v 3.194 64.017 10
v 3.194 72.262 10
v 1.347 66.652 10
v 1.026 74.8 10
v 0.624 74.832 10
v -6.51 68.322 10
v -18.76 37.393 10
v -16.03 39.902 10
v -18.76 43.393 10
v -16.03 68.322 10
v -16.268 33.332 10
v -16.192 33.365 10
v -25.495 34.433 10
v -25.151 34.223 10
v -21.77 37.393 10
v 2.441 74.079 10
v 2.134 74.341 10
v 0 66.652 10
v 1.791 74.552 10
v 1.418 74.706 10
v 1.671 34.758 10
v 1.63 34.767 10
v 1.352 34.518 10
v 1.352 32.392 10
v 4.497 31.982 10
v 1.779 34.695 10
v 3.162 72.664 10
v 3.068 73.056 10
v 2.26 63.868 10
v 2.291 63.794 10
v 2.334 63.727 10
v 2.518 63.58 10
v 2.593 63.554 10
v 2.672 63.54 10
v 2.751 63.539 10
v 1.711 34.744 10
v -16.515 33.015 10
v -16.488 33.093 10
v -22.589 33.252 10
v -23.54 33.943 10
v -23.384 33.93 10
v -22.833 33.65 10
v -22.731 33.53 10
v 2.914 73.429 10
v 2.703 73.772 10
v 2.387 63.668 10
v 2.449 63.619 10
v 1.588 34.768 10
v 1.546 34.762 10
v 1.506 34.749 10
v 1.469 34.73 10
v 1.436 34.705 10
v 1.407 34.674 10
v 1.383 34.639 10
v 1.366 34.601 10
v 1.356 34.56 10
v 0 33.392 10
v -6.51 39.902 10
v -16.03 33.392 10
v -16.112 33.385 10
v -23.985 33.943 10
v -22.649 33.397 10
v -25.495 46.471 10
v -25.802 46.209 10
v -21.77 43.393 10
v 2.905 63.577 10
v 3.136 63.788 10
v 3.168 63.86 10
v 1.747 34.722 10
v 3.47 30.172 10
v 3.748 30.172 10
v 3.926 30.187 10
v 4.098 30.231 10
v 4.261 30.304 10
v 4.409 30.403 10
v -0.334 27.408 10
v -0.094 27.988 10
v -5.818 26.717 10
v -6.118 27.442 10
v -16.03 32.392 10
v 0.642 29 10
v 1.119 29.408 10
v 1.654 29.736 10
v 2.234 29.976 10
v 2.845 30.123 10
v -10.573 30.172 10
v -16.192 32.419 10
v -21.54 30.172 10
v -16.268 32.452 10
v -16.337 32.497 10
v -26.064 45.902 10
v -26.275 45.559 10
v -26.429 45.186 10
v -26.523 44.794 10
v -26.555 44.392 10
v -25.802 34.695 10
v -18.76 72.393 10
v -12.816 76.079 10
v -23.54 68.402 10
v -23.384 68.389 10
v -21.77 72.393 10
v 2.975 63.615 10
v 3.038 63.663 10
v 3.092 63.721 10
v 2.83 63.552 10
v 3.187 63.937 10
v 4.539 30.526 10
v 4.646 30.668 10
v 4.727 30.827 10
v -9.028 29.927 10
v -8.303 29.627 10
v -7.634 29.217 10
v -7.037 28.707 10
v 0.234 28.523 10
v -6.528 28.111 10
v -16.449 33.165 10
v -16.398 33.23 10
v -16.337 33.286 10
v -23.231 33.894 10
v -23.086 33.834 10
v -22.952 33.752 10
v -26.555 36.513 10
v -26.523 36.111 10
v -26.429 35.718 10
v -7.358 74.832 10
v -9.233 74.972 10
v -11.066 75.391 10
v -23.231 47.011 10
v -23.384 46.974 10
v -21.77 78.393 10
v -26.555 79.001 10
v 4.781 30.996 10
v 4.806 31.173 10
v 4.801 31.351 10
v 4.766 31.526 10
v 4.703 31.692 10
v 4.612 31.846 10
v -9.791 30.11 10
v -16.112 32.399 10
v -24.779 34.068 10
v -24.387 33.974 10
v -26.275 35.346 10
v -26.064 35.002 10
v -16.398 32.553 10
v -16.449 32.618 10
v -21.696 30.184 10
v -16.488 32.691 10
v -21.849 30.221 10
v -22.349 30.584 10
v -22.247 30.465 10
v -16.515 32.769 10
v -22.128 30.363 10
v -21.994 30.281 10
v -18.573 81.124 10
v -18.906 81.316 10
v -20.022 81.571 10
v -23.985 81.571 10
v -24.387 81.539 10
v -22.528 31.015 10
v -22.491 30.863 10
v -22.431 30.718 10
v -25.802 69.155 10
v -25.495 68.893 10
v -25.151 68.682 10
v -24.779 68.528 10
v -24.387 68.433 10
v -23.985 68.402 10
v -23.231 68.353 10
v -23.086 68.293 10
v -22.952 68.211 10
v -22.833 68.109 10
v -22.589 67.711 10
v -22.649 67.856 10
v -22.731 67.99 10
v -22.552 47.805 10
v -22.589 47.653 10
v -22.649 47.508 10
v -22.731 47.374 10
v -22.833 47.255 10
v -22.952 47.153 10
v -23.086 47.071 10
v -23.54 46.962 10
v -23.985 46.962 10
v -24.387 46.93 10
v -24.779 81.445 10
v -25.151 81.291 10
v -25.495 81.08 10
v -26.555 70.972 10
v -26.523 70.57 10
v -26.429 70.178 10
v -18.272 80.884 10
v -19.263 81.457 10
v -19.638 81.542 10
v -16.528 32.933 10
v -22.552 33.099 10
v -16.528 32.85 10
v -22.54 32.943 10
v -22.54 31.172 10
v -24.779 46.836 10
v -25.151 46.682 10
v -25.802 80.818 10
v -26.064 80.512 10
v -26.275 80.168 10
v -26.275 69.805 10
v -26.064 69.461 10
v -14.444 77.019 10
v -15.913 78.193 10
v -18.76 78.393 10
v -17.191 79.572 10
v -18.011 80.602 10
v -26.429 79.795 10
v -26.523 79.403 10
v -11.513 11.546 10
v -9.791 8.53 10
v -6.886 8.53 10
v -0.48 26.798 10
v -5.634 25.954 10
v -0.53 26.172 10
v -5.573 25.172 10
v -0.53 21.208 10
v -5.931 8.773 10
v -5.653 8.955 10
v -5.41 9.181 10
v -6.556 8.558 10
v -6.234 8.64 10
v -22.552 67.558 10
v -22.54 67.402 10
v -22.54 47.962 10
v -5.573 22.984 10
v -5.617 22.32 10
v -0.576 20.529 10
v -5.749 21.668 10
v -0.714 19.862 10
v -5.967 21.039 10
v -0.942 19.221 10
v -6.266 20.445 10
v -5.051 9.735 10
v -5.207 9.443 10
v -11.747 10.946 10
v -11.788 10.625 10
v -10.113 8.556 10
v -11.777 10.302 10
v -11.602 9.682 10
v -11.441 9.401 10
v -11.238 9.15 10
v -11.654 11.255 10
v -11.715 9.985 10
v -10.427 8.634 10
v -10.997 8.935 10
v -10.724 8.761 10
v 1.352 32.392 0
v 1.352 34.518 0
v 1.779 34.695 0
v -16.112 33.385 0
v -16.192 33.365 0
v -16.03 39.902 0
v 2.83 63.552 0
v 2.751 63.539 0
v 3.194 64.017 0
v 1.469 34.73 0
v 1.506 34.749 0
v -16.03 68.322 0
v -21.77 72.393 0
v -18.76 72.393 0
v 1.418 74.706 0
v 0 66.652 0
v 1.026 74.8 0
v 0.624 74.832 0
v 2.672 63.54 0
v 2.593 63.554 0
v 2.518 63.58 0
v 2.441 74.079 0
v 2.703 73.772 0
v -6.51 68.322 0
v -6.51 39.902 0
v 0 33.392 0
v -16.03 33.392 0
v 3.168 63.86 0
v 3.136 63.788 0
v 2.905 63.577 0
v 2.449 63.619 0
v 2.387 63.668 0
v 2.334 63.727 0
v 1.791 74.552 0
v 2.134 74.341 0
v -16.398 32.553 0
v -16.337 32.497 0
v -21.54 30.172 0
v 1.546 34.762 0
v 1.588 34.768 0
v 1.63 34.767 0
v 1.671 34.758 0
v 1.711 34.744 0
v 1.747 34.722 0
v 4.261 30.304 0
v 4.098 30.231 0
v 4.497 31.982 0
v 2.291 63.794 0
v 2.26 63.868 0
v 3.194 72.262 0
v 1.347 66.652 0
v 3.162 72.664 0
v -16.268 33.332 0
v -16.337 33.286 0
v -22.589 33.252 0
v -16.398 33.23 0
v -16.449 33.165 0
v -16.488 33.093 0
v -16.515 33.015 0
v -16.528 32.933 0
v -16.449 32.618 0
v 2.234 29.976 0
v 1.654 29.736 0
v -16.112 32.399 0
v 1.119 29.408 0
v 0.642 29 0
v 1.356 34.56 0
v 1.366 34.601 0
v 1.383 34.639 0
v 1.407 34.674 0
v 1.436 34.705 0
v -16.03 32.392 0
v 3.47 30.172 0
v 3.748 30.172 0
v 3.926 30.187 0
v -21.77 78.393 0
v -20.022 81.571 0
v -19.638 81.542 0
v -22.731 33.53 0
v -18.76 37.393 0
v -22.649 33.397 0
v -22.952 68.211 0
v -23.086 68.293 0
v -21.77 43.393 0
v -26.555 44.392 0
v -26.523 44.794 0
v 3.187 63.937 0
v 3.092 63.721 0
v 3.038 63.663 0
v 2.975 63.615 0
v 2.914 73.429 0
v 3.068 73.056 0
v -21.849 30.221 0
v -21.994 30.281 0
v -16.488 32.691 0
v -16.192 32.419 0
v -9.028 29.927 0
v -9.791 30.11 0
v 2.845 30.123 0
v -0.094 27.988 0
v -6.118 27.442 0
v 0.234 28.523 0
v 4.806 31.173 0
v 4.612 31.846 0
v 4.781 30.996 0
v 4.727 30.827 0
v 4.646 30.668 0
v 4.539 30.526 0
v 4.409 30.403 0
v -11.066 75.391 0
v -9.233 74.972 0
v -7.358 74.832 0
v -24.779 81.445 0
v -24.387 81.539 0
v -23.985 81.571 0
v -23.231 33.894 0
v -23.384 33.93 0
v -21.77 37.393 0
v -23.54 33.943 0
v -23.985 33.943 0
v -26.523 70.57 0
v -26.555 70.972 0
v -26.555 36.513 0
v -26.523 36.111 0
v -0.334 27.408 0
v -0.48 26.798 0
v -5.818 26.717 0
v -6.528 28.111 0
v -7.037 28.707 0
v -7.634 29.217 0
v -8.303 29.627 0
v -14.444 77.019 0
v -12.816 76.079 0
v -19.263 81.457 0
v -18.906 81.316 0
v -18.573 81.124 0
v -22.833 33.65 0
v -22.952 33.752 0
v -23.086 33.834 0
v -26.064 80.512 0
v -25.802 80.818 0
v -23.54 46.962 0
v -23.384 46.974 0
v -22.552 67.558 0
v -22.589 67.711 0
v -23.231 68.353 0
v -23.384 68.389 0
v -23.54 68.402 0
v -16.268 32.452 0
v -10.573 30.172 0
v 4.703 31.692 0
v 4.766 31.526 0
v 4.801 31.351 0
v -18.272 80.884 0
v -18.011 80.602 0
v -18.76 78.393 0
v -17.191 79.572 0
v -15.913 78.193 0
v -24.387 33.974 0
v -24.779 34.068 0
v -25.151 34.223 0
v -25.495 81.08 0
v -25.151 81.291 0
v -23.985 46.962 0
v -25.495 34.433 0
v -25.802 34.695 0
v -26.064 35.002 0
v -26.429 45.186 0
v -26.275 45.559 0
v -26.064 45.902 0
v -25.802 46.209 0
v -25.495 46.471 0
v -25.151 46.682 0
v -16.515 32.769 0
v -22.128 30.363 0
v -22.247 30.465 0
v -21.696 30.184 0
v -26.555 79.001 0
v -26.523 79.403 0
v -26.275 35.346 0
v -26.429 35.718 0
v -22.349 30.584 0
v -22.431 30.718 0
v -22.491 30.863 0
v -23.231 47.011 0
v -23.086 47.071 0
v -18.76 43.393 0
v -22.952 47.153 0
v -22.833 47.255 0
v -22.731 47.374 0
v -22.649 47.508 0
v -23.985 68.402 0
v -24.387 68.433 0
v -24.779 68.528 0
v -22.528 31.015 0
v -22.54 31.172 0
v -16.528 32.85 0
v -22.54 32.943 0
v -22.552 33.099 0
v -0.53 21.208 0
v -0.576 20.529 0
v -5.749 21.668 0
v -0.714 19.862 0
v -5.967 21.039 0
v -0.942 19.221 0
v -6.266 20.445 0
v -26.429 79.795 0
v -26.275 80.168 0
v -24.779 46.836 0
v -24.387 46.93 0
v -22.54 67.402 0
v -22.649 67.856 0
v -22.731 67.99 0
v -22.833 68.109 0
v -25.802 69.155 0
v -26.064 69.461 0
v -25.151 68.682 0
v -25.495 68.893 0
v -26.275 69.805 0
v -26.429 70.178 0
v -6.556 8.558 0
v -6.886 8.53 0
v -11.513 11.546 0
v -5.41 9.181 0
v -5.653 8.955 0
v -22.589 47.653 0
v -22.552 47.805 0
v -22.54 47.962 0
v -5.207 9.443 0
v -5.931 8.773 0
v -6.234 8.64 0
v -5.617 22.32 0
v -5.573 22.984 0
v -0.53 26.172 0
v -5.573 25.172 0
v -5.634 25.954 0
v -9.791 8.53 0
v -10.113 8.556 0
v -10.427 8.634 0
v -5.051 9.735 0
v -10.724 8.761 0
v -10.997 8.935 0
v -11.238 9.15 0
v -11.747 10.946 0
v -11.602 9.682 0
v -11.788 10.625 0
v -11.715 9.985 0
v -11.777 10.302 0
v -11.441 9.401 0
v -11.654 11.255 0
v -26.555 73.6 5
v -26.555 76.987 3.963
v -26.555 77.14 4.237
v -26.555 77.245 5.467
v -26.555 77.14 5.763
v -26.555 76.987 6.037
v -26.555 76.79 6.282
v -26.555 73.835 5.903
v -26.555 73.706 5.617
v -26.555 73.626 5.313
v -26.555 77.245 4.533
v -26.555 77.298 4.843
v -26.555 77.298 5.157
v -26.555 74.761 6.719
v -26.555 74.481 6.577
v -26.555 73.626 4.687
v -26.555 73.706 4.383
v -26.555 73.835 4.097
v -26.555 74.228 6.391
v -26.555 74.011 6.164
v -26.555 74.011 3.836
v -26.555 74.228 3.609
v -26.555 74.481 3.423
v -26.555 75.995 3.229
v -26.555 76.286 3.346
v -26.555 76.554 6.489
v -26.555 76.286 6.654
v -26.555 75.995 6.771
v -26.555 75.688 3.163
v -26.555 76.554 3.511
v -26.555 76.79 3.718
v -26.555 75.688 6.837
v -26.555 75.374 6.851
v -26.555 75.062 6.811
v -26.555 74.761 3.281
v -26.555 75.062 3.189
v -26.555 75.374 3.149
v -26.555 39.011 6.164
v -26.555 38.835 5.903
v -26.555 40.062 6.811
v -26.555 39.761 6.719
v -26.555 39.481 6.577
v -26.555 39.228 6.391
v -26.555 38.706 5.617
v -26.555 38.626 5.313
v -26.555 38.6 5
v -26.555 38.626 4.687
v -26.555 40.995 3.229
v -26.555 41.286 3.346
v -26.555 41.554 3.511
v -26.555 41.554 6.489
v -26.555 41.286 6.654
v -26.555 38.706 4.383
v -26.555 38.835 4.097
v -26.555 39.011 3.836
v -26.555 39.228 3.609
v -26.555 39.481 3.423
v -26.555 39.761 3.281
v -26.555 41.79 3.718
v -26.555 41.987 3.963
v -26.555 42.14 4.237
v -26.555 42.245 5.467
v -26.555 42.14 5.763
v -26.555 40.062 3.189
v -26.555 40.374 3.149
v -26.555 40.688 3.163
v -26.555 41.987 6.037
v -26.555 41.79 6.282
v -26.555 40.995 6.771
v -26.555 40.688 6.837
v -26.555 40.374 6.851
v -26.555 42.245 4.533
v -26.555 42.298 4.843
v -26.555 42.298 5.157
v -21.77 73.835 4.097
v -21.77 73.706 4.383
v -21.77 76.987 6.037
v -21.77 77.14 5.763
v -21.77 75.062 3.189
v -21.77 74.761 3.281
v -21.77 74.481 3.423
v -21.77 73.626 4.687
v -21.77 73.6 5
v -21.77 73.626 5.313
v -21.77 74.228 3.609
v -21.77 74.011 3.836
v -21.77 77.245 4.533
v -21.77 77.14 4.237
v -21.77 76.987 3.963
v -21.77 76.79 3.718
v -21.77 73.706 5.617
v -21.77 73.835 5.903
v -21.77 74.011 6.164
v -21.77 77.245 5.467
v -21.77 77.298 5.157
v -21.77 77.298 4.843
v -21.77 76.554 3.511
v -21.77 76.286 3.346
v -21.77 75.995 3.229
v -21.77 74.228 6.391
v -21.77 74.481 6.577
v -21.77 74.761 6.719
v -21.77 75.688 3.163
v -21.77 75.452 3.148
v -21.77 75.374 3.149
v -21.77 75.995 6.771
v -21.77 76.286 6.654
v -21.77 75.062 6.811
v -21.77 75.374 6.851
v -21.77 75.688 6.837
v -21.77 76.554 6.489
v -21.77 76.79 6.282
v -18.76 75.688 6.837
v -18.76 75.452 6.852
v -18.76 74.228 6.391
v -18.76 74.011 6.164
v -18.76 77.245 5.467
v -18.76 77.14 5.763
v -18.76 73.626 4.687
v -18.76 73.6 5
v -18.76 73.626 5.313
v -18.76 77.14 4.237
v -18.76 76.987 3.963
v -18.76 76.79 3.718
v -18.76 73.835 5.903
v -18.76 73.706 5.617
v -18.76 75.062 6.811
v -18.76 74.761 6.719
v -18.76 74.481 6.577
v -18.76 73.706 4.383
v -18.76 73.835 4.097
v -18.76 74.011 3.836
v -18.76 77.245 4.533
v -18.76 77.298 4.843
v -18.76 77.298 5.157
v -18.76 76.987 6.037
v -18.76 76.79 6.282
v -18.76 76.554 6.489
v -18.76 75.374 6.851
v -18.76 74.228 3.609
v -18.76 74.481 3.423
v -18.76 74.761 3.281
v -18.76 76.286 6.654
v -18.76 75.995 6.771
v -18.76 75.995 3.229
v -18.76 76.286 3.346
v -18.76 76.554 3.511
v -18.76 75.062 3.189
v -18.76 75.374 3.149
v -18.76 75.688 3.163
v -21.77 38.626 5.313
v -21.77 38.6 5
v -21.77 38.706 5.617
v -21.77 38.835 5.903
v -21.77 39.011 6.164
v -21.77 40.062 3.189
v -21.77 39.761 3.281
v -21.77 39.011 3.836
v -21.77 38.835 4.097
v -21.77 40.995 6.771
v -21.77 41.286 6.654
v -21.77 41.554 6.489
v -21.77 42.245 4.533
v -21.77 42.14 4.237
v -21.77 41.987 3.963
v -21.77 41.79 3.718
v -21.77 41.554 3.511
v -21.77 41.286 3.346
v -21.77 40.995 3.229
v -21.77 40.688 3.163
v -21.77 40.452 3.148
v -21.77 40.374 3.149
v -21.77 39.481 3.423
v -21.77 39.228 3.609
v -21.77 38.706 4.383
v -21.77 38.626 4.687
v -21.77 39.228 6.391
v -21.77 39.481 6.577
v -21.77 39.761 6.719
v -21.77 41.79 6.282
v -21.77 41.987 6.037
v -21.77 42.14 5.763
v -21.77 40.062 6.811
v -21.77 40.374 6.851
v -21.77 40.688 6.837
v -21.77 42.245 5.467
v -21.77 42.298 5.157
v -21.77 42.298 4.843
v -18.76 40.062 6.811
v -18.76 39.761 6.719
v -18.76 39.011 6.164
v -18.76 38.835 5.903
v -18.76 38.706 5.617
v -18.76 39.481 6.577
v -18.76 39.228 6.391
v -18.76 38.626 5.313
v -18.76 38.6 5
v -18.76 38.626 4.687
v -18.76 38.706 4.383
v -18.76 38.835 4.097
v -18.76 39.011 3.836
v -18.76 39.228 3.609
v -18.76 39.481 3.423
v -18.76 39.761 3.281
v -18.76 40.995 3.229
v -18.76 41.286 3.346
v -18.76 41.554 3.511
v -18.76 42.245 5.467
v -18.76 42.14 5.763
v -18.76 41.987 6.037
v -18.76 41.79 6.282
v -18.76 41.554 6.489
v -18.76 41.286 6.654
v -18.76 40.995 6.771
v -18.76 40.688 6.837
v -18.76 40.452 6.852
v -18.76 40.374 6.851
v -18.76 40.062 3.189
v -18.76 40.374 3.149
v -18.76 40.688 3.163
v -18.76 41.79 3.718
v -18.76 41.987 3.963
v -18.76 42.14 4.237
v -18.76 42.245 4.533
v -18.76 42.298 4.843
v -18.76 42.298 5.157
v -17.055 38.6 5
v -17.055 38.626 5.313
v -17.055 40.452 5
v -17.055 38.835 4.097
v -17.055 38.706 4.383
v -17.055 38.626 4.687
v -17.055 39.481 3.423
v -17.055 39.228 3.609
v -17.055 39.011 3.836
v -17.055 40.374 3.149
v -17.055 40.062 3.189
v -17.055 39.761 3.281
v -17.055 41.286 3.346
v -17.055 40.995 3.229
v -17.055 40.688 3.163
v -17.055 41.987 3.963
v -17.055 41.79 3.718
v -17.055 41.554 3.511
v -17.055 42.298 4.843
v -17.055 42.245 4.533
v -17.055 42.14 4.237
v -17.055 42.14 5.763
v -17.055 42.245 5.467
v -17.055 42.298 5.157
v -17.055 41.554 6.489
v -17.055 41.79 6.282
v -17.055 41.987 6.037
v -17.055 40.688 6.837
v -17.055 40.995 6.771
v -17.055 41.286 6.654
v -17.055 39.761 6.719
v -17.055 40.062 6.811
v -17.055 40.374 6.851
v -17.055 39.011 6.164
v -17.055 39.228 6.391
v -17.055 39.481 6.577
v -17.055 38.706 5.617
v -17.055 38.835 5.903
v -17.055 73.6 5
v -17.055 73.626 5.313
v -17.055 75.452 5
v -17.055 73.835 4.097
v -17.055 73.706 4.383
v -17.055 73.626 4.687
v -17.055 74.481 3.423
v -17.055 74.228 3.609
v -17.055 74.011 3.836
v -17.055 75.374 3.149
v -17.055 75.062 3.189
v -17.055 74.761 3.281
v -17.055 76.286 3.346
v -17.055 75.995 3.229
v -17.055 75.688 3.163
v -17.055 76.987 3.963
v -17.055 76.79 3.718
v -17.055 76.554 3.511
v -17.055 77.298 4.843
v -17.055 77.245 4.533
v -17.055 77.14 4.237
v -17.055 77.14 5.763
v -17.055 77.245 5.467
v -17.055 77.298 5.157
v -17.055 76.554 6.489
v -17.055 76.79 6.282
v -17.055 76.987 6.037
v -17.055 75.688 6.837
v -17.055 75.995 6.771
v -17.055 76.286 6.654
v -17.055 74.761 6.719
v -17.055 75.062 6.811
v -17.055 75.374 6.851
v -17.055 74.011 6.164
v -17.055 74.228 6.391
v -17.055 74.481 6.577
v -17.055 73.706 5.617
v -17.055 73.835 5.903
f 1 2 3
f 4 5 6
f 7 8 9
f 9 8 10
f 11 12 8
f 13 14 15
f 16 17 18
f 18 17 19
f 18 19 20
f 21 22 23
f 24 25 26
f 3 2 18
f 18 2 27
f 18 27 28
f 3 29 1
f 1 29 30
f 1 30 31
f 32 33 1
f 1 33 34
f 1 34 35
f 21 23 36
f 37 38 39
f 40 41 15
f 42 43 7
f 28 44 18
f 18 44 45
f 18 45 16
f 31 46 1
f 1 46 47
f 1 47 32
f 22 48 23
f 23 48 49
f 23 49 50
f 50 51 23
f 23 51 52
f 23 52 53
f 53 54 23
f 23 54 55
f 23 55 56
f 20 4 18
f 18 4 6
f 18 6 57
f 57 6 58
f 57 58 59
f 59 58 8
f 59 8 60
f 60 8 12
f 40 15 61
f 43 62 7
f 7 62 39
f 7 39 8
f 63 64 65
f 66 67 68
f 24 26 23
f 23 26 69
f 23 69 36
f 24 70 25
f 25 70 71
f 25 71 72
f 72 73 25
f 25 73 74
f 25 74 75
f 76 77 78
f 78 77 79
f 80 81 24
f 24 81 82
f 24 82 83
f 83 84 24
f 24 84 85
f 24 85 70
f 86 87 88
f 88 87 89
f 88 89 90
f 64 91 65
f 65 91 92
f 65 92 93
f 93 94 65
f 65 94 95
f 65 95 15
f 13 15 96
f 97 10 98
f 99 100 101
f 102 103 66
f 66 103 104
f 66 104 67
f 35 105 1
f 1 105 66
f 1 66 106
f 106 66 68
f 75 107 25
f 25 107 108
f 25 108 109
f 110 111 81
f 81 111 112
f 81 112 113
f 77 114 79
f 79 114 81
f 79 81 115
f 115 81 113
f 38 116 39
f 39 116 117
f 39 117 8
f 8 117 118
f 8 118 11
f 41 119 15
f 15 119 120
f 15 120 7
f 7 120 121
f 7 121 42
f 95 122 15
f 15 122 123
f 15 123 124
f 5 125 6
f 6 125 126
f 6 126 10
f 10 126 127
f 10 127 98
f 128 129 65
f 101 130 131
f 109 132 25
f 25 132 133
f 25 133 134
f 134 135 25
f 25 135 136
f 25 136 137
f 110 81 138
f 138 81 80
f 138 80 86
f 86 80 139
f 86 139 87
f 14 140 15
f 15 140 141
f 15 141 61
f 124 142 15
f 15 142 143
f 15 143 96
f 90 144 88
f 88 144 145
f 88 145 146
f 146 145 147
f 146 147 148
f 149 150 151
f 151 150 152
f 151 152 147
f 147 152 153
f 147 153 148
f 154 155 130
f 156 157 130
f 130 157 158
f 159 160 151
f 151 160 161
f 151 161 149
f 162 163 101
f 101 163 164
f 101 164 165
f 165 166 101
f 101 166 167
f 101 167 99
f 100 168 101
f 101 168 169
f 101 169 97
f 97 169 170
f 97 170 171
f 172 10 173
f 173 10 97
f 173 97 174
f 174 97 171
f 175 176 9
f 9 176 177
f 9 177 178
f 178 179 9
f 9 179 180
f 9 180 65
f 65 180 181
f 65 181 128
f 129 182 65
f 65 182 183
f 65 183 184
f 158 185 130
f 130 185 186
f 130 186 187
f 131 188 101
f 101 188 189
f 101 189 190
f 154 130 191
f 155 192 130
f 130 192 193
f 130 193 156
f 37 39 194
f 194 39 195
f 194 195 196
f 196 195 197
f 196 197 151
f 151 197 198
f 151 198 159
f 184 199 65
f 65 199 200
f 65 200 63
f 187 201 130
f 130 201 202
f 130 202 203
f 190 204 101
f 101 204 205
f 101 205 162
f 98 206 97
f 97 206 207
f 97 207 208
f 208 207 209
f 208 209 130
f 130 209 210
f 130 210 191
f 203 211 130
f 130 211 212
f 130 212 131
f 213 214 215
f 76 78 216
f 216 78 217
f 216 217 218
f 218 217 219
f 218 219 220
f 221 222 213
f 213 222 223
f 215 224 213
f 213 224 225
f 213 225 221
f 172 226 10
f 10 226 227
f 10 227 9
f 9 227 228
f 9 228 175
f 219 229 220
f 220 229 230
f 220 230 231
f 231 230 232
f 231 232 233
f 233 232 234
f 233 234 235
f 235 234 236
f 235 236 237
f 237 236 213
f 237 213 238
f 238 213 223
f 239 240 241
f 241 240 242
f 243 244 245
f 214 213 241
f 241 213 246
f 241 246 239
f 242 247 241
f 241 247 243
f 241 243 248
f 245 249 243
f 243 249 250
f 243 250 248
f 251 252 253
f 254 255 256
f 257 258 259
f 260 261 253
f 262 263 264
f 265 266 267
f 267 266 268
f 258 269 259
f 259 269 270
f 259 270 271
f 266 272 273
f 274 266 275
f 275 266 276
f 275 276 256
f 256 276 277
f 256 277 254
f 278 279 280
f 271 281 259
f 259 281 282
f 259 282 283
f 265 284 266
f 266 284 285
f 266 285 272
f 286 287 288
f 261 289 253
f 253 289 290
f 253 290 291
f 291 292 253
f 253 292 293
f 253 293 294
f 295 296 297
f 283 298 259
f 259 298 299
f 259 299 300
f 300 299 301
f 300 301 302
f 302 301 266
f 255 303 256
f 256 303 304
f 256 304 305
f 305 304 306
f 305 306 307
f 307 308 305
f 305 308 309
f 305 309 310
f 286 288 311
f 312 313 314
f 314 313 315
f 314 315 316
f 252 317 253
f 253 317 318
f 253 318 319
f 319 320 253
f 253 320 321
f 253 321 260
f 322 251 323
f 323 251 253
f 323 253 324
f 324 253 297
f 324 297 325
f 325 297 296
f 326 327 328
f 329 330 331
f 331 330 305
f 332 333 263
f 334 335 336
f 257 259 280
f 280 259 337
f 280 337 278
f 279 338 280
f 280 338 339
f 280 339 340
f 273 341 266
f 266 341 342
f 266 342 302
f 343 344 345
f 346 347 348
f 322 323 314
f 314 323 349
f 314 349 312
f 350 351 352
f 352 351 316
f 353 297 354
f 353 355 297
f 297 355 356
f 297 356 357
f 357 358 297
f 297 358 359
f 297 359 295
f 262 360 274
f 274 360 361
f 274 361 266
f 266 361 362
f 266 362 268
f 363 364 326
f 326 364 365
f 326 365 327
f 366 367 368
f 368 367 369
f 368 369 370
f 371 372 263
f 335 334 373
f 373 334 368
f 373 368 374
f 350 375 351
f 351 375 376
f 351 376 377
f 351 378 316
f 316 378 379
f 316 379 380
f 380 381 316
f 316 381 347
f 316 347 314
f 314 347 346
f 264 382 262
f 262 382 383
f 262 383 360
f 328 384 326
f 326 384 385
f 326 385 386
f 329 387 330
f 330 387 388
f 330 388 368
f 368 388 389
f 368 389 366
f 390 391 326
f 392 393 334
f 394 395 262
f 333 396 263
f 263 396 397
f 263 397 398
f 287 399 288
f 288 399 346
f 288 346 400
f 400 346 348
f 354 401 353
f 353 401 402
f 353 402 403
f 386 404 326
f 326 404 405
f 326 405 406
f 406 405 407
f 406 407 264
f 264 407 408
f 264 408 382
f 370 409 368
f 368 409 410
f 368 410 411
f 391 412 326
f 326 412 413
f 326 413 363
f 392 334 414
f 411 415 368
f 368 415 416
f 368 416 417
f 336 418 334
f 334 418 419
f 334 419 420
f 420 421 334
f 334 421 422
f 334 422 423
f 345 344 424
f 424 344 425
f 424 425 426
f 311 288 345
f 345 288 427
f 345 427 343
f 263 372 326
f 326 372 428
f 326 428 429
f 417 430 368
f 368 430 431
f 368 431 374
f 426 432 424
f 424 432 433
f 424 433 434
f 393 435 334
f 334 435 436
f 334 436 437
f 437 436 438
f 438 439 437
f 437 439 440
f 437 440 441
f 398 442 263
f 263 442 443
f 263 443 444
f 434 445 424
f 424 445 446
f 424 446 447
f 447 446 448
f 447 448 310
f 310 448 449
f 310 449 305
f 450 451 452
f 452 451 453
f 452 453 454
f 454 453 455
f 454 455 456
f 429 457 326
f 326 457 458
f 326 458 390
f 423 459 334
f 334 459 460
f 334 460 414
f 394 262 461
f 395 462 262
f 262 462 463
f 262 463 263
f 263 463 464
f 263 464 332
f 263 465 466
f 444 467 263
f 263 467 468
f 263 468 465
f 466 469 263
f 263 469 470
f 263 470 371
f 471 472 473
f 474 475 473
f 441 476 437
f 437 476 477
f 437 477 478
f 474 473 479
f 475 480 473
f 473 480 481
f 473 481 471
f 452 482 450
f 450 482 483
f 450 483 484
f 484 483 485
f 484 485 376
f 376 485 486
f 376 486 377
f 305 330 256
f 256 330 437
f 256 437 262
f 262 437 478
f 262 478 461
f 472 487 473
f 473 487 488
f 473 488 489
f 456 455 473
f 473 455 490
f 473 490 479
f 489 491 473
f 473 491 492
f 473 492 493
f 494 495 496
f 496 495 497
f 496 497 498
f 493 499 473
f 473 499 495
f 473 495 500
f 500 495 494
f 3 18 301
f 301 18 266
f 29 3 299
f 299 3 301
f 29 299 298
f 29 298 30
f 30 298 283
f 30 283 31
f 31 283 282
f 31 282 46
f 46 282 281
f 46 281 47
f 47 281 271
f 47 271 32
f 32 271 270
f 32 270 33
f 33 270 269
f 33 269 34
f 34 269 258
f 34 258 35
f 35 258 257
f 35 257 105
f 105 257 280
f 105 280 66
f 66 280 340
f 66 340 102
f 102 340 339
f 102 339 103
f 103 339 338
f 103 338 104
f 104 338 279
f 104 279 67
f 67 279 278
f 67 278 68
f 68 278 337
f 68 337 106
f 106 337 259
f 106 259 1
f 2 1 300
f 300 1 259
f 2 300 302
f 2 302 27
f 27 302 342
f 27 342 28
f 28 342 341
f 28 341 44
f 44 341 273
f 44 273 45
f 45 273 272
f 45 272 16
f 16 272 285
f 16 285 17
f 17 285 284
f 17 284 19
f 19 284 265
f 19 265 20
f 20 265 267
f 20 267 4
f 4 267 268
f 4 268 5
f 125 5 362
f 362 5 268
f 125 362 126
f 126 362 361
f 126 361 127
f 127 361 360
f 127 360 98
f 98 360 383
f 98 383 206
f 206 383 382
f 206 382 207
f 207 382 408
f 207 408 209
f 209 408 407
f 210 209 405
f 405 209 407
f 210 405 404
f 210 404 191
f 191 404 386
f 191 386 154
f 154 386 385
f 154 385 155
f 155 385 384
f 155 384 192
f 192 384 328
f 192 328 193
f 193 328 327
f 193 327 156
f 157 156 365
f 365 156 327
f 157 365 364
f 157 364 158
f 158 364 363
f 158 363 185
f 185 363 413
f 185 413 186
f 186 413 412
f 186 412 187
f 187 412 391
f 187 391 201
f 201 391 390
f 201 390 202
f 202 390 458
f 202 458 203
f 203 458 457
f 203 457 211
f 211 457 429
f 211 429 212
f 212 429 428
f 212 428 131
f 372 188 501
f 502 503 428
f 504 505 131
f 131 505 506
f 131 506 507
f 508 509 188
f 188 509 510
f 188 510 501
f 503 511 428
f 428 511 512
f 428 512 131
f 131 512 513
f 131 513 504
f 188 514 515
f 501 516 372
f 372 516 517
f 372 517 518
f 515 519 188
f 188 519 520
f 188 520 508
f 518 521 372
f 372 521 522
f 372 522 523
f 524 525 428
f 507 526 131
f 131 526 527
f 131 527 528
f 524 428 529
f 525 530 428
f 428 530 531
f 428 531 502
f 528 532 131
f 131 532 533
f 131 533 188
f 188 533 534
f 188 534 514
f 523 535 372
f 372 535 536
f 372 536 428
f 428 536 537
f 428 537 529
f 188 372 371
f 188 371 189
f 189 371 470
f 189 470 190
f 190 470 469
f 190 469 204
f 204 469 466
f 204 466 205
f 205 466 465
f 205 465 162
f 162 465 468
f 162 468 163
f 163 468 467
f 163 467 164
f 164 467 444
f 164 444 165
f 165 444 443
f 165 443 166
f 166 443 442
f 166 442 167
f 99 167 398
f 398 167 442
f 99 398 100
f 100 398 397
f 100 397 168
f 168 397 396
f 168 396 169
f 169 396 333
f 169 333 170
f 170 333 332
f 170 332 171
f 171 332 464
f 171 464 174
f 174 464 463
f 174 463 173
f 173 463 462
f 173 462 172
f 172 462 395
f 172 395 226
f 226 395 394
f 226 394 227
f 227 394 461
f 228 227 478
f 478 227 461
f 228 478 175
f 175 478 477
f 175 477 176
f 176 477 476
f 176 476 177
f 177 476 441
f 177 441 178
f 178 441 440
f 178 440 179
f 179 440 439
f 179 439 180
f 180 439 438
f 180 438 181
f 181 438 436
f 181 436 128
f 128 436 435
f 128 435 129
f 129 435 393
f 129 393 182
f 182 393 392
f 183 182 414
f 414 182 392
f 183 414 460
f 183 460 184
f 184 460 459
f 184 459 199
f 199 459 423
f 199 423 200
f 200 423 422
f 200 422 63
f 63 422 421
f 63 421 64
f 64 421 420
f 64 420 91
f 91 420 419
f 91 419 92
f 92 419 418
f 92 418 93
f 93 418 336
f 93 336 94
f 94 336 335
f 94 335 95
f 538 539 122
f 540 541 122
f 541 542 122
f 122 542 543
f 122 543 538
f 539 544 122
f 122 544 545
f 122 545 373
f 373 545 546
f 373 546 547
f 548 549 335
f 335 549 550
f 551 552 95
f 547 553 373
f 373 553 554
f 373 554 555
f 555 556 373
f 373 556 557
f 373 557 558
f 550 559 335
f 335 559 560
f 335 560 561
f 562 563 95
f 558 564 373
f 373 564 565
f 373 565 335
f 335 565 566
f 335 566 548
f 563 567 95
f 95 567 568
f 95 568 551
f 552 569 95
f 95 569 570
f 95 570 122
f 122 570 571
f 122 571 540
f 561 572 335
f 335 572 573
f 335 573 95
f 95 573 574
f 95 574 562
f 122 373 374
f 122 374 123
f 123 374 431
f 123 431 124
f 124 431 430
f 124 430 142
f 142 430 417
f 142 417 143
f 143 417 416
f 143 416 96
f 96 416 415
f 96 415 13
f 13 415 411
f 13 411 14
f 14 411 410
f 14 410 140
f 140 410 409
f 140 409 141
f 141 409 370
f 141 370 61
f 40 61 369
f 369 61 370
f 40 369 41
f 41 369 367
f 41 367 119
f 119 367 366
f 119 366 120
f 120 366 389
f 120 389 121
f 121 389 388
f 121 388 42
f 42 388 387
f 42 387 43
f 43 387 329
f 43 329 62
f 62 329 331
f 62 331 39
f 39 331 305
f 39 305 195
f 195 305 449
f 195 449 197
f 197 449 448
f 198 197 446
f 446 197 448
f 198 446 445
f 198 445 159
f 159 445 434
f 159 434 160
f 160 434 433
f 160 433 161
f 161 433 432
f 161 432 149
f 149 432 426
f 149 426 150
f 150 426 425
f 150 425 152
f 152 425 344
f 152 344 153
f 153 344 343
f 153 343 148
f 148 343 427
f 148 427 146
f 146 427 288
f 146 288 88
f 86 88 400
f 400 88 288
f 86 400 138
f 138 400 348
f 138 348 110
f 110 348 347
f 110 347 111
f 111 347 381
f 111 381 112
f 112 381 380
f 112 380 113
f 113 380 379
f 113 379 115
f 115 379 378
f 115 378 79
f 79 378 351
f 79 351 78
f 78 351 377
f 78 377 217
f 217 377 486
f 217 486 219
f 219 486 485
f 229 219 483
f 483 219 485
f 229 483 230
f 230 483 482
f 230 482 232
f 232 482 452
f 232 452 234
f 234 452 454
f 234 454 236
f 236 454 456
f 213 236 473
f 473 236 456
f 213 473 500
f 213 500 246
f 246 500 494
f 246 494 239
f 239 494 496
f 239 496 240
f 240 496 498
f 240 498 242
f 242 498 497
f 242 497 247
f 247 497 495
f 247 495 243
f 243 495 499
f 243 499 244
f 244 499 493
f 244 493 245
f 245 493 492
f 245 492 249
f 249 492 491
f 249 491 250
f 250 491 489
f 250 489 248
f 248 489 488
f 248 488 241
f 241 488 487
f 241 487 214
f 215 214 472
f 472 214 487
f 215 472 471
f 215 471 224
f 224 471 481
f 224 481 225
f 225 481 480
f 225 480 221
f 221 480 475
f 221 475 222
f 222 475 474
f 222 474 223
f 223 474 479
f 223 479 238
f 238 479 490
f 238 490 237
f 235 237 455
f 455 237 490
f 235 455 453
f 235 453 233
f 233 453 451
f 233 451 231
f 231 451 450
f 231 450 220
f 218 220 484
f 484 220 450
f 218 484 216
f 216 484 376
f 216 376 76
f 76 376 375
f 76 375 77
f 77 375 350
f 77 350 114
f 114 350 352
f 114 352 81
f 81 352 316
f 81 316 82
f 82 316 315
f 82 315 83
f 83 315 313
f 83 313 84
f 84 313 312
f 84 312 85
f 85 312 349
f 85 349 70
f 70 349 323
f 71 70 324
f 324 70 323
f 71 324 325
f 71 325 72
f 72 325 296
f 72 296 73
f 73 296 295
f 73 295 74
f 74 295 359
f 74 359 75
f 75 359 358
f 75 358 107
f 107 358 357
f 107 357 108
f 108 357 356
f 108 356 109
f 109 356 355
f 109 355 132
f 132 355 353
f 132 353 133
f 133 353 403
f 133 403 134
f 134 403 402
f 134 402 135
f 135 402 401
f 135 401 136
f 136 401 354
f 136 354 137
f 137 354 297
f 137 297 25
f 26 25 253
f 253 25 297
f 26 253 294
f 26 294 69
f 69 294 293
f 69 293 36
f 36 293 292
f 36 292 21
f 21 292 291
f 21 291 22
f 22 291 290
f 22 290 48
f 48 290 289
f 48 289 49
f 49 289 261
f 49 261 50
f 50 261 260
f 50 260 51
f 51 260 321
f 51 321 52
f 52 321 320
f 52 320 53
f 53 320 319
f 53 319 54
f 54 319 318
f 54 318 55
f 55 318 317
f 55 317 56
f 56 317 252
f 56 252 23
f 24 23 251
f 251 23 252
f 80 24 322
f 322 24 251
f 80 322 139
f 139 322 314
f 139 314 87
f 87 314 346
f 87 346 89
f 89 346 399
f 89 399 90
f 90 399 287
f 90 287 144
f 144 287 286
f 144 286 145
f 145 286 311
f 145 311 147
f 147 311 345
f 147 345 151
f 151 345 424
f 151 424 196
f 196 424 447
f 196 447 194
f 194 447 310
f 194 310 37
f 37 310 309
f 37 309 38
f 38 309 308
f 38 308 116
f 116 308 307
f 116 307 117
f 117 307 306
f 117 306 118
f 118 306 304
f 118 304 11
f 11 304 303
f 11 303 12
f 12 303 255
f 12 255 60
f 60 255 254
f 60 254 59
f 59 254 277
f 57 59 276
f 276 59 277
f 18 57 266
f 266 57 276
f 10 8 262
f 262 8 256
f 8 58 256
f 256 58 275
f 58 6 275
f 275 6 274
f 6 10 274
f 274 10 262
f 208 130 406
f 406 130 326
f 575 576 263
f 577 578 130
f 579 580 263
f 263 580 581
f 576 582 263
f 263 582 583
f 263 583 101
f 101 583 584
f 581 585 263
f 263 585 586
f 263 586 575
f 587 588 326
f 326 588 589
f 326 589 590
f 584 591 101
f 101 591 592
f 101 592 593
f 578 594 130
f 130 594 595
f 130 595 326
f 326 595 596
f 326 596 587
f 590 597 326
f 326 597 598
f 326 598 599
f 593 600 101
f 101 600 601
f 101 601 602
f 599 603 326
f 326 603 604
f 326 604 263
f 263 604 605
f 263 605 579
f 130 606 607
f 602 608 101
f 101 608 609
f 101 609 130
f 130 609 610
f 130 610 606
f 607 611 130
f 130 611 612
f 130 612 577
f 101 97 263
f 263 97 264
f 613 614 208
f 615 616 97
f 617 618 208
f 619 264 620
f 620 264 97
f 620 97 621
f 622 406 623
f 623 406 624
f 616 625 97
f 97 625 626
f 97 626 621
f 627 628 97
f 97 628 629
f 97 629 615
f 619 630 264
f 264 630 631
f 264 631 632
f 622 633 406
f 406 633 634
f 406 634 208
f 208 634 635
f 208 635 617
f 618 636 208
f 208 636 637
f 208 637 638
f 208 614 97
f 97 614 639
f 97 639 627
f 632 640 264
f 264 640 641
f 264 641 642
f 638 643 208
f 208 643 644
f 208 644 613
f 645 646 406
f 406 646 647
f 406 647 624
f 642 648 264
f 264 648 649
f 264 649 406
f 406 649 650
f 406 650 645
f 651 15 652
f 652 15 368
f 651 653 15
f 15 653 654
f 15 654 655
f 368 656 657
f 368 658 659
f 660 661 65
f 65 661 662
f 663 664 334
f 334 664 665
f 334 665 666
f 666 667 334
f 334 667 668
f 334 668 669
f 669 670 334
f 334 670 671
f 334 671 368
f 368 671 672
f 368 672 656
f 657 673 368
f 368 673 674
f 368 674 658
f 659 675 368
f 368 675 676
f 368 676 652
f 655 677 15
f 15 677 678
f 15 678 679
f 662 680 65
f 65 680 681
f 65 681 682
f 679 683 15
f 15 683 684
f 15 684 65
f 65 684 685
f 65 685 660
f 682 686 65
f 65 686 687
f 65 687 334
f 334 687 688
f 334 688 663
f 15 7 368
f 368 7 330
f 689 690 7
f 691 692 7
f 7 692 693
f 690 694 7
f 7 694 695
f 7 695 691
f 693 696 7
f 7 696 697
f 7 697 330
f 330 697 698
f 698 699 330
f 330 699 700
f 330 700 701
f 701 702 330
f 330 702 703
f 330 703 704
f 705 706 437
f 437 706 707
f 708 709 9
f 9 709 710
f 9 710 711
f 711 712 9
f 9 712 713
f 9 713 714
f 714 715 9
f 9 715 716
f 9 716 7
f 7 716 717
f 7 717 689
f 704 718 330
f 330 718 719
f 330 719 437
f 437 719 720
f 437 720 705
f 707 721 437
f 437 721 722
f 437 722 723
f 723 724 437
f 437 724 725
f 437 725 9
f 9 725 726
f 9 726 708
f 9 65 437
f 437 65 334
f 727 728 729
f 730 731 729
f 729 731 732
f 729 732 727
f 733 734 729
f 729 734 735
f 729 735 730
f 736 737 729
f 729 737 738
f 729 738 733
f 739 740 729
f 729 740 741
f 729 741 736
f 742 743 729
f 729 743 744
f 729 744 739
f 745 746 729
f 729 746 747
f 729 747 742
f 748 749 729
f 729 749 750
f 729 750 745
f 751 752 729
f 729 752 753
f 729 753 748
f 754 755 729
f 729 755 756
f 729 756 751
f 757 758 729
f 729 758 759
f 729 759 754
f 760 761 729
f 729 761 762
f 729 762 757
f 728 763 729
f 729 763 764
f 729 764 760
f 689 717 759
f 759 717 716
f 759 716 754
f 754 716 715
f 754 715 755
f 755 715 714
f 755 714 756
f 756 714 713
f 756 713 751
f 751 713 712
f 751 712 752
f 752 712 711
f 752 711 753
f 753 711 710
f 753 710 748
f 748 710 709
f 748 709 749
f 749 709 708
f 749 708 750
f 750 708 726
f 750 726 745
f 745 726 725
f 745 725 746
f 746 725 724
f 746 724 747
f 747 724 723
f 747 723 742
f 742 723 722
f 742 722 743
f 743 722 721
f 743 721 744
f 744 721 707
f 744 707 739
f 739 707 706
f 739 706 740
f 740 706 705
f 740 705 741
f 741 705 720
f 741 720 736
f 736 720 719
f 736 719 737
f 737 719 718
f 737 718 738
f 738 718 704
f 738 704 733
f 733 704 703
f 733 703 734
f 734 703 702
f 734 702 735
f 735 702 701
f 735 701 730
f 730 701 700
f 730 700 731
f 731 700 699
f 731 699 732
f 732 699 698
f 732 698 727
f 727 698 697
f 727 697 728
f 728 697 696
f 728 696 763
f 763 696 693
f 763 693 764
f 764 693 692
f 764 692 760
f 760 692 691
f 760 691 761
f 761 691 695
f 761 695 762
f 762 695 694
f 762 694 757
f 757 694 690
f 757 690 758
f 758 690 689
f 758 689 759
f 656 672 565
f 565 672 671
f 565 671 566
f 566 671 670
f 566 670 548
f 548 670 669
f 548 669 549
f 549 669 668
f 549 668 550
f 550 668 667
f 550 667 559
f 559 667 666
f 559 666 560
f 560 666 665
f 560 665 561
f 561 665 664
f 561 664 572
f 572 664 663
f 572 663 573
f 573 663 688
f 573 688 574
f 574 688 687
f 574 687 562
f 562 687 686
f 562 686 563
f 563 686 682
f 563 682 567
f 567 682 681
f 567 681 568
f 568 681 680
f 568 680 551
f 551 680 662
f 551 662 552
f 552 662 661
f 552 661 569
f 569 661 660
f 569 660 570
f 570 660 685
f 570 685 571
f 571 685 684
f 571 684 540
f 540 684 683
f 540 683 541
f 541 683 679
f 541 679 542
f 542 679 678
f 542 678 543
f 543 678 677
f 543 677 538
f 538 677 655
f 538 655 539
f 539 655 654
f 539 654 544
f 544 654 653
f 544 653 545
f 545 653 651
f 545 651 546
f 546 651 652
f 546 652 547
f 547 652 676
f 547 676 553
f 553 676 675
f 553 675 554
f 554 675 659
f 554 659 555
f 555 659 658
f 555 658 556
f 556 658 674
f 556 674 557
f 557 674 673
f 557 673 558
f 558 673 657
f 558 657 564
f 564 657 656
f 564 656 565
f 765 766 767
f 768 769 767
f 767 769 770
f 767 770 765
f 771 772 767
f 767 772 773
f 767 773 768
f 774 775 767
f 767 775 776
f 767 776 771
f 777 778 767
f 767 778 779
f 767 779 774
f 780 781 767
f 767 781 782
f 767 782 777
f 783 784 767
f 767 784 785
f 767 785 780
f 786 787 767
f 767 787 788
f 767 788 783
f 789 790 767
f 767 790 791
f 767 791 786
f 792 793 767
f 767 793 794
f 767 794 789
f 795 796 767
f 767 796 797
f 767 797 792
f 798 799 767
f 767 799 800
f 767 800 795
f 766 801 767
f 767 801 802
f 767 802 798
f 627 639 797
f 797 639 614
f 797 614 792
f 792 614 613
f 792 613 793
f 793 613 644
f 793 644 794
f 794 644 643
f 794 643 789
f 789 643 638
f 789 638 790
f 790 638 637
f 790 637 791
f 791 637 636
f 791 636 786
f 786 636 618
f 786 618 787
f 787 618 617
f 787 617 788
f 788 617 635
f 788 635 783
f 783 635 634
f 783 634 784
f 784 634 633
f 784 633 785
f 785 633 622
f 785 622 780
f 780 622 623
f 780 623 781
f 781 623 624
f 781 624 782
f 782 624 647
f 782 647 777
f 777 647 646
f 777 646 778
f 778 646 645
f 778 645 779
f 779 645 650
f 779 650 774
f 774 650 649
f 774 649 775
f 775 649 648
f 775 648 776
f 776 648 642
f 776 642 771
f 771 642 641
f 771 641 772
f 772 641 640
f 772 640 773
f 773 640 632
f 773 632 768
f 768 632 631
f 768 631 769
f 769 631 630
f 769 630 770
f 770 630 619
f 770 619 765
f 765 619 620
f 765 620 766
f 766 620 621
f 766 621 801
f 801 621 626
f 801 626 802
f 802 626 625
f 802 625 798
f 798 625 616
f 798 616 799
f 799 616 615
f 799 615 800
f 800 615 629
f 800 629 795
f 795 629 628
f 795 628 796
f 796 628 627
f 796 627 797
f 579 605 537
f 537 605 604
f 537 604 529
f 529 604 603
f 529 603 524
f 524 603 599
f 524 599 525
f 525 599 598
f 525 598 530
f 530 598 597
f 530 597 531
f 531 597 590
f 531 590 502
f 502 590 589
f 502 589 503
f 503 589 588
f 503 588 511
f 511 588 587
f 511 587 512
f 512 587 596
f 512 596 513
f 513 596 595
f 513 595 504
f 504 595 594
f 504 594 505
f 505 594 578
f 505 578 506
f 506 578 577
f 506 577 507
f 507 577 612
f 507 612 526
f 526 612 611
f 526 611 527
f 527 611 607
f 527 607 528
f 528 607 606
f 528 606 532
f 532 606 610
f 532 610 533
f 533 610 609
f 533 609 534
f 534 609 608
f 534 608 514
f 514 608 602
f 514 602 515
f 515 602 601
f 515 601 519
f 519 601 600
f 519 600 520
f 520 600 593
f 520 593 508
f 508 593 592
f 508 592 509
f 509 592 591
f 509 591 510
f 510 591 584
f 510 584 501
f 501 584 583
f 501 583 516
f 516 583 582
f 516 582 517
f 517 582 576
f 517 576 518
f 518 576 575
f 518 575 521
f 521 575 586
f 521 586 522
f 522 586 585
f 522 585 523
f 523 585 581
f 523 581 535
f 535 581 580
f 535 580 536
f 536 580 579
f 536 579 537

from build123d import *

# Parameters (mm, degrees)
SKETCH2_W           = 9.52
SKETCH2_H           = 28.42
SKETCH2_W_2         = 3.01
SKETCH2_H_2         = 6
BOSS_EXTRUDE1_DEPTH = 10
SKETCH4_R           = 1.852493383
SKETCH4_R_2         = 1.85249338
CUT_EXTRUDE1_DEPTH  = 9.5


with BuildPart() as part:
    # Sketch2 → Boss-Extrude1 (new body)
    with BuildSketch(Plane.XY):
        with BuildLine():
            Line((0, 66.651771766), (0, 33.391771766))
            Line((0, 33.391771766), (-16.03, 33.391771766))
            ThreePointArc((-16.03, 33.391771766), (-16.53, 32.891771766), (-16.03, 32.391771766))
            Line((-16.03, 32.391771766), (1.352234191, 32.391771766))
            Line((1.352234191, 32.391771766), (1.352234191, 34.518218659))
            ThreePointArc((1.352234191, 34.518218659), (1.506462672, 34.749146821), (1.77885672, 34.695149386))
            Line((1.77885672, 34.695149386), (4.496782459, 31.98195805))
            ThreePointArc((4.496782459, 31.98195805), (4.727391952, 30.826554208), (3.747902937, 30.171771766))
            Line((3.747902937, 30.171771766), (3.470297616, 30.171771766))
            ThreePointArc((3.470297616, 30.171771766), (0.641870491, 29.00019889), (-0.529702384, 26.171771766))
            Line((-0.529702384, 26.171771766), (-0.529702384, 21.208235908))
            ThreePointArc((-0.529702384, 21.208235908), (-0.633785571, 20.193347464), (-0.941701806, 19.220712149))
            Line((-0.941701806, 19.220712149), (-5.050790824, 9.735289546))
            ThreePointArc((-5.050790824, 9.735289546), (-5.788270464, 8.858470858), (-6.885991056, 8.53029905))
            Line((-6.885991056, 8.53029905), (-9.79055056, 8.53029905))
            ThreePointArc((-9.79055056, 8.53029905), (-11.527191752, 9.538292312), (-11.513310325, 11.546221681))
            Line((-11.513310325, 11.546221681), (-6.265893795, 20.444574564))
            ThreePointArc((-6.265893795, 20.444574564), (-5.74917957, 21.668040962), (-5.572793209, 22.984381141))
            Line((-5.572793209, 22.984381141), (-5.572793209, 25.171771766))
            ThreePointArc((-5.572793209, 25.171771766), (-7.037259303, 28.707305672), (-10.572793209, 30.171771766))
            Line((-10.572793209, 30.171771766), (-21.54, 30.171771766))
            ThreePointArc((-21.54, 30.171771766), (-22.247106781, 30.464664985), (-22.54, 31.171771766))
            Line((-22.54, 31.171771766), (-22.54, 32.942649485))
            ThreePointArc((-22.54, 32.942649485), (-22.832893219, 33.649756266), (-23.54, 33.942649485))
            Line((-23.54, 33.942649485), (-23.98462025, 33.942649485))
            ThreePointArc((-23.98462025, 33.942649485), (-25.801884678, 34.695385057), (-26.55462025, 36.512649485))
            Line((-26.55462025, 36.512649485), (-26.55462025, 44.391771766))
            ThreePointArc((-26.55462025, 44.391771766), (-25.801884678, 46.209036193), (-23.98462025, 46.961771766))
            Line((-23.98462025, 46.961771766), (-23.54, 46.961771766))
            ThreePointArc((-23.54, 46.961771766), (-22.832893219, 47.254664985), (-22.54, 47.961771766))
            Line((-22.54, 47.961771766), (-22.54, 67.401771766))
            ThreePointArc((-22.54, 67.401771766), (-22.832893219, 68.108878547), (-23.54, 68.401771766))
            Line((-23.54, 68.401771766), (-23.98462025, 68.401771766))
            ThreePointArc((-23.98462025, 68.401771766), (-25.801884678, 69.154507338), (-26.55462025, 70.971771766))
            Line((-26.55462025, 70.971771766), (-26.55462025, 77.401771766))
            Line((-26.55462025, 77.401771766), (-26.55462025, 79.000903717))
            ThreePointArc((-26.55462025, 79.000903717), (-25.801884678, 80.818168145), (-23.98462025, 81.570903717))
            Line((-23.98462025, 81.570903717), (-20.021565093, 81.570903717))
            ThreePointArc((-20.021565093, 81.570903717), (-18.905624991, 81.31597989), (-18.011069886, 80.601781295))
            Line((-18.011069886, 80.601781295), (-17.190935487, 79.571798553))
            ThreePointArc((-17.190935487, 79.571798553), (-12.815621218, 76.078617097), (-7.357501728, 74.831771766))
            Line((-7.357501728, 74.831771766), (0.623852111, 74.831771766))
            ThreePointArc((0.623852111, 74.831771766), (2.441116539, 74.079036193), (3.193852111, 72.261771766))
            Line((3.193852111, 72.261771766), (3.193852111, 64.016682225))
            ThreePointArc((3.193852111, 64.016682225), (2.79053513, 63.543838386), (2.26, 63.867533241))
            Line((2.26, 63.867533241), (1.347357771, 66.651771766))
            Line((1.347357771, 66.651771766), (0, 66.651771766))
        make_face()
        with Locations((-11.27, 54.111771766)):
            Rectangle(SKETCH2_W, SKETCH2_H, mode=Mode.SUBTRACT)
        with Locations((-20.2649024, 75.392647139)):
            Rectangle(SKETCH2_W_2, SKETCH2_H_2, mode=Mode.SUBTRACT)
        with Locations((-20.2649024, 40.392647139)):
            Rectangle(SKETCH2_W_2, SKETCH2_H_2, mode=Mode.SUBTRACT)
    extrude(amount=BOSS_EXTRUDE1_DEPTH)

    # Sketch4 → Cut-Extrude1 (cut)
    with BuildSketch(Plane.ZY.offset(26.55462025)):
        with Locations((5, 75.452210625)):
            Circle(SKETCH4_R)
        with Locations((5, 40.452210625)):
            Circle(SKETCH4_R_2)
    extrude(amount=-CUT_EXTRUDE1_DEPTH, mode=Mode.SUBTRACT)


solid = part.part
